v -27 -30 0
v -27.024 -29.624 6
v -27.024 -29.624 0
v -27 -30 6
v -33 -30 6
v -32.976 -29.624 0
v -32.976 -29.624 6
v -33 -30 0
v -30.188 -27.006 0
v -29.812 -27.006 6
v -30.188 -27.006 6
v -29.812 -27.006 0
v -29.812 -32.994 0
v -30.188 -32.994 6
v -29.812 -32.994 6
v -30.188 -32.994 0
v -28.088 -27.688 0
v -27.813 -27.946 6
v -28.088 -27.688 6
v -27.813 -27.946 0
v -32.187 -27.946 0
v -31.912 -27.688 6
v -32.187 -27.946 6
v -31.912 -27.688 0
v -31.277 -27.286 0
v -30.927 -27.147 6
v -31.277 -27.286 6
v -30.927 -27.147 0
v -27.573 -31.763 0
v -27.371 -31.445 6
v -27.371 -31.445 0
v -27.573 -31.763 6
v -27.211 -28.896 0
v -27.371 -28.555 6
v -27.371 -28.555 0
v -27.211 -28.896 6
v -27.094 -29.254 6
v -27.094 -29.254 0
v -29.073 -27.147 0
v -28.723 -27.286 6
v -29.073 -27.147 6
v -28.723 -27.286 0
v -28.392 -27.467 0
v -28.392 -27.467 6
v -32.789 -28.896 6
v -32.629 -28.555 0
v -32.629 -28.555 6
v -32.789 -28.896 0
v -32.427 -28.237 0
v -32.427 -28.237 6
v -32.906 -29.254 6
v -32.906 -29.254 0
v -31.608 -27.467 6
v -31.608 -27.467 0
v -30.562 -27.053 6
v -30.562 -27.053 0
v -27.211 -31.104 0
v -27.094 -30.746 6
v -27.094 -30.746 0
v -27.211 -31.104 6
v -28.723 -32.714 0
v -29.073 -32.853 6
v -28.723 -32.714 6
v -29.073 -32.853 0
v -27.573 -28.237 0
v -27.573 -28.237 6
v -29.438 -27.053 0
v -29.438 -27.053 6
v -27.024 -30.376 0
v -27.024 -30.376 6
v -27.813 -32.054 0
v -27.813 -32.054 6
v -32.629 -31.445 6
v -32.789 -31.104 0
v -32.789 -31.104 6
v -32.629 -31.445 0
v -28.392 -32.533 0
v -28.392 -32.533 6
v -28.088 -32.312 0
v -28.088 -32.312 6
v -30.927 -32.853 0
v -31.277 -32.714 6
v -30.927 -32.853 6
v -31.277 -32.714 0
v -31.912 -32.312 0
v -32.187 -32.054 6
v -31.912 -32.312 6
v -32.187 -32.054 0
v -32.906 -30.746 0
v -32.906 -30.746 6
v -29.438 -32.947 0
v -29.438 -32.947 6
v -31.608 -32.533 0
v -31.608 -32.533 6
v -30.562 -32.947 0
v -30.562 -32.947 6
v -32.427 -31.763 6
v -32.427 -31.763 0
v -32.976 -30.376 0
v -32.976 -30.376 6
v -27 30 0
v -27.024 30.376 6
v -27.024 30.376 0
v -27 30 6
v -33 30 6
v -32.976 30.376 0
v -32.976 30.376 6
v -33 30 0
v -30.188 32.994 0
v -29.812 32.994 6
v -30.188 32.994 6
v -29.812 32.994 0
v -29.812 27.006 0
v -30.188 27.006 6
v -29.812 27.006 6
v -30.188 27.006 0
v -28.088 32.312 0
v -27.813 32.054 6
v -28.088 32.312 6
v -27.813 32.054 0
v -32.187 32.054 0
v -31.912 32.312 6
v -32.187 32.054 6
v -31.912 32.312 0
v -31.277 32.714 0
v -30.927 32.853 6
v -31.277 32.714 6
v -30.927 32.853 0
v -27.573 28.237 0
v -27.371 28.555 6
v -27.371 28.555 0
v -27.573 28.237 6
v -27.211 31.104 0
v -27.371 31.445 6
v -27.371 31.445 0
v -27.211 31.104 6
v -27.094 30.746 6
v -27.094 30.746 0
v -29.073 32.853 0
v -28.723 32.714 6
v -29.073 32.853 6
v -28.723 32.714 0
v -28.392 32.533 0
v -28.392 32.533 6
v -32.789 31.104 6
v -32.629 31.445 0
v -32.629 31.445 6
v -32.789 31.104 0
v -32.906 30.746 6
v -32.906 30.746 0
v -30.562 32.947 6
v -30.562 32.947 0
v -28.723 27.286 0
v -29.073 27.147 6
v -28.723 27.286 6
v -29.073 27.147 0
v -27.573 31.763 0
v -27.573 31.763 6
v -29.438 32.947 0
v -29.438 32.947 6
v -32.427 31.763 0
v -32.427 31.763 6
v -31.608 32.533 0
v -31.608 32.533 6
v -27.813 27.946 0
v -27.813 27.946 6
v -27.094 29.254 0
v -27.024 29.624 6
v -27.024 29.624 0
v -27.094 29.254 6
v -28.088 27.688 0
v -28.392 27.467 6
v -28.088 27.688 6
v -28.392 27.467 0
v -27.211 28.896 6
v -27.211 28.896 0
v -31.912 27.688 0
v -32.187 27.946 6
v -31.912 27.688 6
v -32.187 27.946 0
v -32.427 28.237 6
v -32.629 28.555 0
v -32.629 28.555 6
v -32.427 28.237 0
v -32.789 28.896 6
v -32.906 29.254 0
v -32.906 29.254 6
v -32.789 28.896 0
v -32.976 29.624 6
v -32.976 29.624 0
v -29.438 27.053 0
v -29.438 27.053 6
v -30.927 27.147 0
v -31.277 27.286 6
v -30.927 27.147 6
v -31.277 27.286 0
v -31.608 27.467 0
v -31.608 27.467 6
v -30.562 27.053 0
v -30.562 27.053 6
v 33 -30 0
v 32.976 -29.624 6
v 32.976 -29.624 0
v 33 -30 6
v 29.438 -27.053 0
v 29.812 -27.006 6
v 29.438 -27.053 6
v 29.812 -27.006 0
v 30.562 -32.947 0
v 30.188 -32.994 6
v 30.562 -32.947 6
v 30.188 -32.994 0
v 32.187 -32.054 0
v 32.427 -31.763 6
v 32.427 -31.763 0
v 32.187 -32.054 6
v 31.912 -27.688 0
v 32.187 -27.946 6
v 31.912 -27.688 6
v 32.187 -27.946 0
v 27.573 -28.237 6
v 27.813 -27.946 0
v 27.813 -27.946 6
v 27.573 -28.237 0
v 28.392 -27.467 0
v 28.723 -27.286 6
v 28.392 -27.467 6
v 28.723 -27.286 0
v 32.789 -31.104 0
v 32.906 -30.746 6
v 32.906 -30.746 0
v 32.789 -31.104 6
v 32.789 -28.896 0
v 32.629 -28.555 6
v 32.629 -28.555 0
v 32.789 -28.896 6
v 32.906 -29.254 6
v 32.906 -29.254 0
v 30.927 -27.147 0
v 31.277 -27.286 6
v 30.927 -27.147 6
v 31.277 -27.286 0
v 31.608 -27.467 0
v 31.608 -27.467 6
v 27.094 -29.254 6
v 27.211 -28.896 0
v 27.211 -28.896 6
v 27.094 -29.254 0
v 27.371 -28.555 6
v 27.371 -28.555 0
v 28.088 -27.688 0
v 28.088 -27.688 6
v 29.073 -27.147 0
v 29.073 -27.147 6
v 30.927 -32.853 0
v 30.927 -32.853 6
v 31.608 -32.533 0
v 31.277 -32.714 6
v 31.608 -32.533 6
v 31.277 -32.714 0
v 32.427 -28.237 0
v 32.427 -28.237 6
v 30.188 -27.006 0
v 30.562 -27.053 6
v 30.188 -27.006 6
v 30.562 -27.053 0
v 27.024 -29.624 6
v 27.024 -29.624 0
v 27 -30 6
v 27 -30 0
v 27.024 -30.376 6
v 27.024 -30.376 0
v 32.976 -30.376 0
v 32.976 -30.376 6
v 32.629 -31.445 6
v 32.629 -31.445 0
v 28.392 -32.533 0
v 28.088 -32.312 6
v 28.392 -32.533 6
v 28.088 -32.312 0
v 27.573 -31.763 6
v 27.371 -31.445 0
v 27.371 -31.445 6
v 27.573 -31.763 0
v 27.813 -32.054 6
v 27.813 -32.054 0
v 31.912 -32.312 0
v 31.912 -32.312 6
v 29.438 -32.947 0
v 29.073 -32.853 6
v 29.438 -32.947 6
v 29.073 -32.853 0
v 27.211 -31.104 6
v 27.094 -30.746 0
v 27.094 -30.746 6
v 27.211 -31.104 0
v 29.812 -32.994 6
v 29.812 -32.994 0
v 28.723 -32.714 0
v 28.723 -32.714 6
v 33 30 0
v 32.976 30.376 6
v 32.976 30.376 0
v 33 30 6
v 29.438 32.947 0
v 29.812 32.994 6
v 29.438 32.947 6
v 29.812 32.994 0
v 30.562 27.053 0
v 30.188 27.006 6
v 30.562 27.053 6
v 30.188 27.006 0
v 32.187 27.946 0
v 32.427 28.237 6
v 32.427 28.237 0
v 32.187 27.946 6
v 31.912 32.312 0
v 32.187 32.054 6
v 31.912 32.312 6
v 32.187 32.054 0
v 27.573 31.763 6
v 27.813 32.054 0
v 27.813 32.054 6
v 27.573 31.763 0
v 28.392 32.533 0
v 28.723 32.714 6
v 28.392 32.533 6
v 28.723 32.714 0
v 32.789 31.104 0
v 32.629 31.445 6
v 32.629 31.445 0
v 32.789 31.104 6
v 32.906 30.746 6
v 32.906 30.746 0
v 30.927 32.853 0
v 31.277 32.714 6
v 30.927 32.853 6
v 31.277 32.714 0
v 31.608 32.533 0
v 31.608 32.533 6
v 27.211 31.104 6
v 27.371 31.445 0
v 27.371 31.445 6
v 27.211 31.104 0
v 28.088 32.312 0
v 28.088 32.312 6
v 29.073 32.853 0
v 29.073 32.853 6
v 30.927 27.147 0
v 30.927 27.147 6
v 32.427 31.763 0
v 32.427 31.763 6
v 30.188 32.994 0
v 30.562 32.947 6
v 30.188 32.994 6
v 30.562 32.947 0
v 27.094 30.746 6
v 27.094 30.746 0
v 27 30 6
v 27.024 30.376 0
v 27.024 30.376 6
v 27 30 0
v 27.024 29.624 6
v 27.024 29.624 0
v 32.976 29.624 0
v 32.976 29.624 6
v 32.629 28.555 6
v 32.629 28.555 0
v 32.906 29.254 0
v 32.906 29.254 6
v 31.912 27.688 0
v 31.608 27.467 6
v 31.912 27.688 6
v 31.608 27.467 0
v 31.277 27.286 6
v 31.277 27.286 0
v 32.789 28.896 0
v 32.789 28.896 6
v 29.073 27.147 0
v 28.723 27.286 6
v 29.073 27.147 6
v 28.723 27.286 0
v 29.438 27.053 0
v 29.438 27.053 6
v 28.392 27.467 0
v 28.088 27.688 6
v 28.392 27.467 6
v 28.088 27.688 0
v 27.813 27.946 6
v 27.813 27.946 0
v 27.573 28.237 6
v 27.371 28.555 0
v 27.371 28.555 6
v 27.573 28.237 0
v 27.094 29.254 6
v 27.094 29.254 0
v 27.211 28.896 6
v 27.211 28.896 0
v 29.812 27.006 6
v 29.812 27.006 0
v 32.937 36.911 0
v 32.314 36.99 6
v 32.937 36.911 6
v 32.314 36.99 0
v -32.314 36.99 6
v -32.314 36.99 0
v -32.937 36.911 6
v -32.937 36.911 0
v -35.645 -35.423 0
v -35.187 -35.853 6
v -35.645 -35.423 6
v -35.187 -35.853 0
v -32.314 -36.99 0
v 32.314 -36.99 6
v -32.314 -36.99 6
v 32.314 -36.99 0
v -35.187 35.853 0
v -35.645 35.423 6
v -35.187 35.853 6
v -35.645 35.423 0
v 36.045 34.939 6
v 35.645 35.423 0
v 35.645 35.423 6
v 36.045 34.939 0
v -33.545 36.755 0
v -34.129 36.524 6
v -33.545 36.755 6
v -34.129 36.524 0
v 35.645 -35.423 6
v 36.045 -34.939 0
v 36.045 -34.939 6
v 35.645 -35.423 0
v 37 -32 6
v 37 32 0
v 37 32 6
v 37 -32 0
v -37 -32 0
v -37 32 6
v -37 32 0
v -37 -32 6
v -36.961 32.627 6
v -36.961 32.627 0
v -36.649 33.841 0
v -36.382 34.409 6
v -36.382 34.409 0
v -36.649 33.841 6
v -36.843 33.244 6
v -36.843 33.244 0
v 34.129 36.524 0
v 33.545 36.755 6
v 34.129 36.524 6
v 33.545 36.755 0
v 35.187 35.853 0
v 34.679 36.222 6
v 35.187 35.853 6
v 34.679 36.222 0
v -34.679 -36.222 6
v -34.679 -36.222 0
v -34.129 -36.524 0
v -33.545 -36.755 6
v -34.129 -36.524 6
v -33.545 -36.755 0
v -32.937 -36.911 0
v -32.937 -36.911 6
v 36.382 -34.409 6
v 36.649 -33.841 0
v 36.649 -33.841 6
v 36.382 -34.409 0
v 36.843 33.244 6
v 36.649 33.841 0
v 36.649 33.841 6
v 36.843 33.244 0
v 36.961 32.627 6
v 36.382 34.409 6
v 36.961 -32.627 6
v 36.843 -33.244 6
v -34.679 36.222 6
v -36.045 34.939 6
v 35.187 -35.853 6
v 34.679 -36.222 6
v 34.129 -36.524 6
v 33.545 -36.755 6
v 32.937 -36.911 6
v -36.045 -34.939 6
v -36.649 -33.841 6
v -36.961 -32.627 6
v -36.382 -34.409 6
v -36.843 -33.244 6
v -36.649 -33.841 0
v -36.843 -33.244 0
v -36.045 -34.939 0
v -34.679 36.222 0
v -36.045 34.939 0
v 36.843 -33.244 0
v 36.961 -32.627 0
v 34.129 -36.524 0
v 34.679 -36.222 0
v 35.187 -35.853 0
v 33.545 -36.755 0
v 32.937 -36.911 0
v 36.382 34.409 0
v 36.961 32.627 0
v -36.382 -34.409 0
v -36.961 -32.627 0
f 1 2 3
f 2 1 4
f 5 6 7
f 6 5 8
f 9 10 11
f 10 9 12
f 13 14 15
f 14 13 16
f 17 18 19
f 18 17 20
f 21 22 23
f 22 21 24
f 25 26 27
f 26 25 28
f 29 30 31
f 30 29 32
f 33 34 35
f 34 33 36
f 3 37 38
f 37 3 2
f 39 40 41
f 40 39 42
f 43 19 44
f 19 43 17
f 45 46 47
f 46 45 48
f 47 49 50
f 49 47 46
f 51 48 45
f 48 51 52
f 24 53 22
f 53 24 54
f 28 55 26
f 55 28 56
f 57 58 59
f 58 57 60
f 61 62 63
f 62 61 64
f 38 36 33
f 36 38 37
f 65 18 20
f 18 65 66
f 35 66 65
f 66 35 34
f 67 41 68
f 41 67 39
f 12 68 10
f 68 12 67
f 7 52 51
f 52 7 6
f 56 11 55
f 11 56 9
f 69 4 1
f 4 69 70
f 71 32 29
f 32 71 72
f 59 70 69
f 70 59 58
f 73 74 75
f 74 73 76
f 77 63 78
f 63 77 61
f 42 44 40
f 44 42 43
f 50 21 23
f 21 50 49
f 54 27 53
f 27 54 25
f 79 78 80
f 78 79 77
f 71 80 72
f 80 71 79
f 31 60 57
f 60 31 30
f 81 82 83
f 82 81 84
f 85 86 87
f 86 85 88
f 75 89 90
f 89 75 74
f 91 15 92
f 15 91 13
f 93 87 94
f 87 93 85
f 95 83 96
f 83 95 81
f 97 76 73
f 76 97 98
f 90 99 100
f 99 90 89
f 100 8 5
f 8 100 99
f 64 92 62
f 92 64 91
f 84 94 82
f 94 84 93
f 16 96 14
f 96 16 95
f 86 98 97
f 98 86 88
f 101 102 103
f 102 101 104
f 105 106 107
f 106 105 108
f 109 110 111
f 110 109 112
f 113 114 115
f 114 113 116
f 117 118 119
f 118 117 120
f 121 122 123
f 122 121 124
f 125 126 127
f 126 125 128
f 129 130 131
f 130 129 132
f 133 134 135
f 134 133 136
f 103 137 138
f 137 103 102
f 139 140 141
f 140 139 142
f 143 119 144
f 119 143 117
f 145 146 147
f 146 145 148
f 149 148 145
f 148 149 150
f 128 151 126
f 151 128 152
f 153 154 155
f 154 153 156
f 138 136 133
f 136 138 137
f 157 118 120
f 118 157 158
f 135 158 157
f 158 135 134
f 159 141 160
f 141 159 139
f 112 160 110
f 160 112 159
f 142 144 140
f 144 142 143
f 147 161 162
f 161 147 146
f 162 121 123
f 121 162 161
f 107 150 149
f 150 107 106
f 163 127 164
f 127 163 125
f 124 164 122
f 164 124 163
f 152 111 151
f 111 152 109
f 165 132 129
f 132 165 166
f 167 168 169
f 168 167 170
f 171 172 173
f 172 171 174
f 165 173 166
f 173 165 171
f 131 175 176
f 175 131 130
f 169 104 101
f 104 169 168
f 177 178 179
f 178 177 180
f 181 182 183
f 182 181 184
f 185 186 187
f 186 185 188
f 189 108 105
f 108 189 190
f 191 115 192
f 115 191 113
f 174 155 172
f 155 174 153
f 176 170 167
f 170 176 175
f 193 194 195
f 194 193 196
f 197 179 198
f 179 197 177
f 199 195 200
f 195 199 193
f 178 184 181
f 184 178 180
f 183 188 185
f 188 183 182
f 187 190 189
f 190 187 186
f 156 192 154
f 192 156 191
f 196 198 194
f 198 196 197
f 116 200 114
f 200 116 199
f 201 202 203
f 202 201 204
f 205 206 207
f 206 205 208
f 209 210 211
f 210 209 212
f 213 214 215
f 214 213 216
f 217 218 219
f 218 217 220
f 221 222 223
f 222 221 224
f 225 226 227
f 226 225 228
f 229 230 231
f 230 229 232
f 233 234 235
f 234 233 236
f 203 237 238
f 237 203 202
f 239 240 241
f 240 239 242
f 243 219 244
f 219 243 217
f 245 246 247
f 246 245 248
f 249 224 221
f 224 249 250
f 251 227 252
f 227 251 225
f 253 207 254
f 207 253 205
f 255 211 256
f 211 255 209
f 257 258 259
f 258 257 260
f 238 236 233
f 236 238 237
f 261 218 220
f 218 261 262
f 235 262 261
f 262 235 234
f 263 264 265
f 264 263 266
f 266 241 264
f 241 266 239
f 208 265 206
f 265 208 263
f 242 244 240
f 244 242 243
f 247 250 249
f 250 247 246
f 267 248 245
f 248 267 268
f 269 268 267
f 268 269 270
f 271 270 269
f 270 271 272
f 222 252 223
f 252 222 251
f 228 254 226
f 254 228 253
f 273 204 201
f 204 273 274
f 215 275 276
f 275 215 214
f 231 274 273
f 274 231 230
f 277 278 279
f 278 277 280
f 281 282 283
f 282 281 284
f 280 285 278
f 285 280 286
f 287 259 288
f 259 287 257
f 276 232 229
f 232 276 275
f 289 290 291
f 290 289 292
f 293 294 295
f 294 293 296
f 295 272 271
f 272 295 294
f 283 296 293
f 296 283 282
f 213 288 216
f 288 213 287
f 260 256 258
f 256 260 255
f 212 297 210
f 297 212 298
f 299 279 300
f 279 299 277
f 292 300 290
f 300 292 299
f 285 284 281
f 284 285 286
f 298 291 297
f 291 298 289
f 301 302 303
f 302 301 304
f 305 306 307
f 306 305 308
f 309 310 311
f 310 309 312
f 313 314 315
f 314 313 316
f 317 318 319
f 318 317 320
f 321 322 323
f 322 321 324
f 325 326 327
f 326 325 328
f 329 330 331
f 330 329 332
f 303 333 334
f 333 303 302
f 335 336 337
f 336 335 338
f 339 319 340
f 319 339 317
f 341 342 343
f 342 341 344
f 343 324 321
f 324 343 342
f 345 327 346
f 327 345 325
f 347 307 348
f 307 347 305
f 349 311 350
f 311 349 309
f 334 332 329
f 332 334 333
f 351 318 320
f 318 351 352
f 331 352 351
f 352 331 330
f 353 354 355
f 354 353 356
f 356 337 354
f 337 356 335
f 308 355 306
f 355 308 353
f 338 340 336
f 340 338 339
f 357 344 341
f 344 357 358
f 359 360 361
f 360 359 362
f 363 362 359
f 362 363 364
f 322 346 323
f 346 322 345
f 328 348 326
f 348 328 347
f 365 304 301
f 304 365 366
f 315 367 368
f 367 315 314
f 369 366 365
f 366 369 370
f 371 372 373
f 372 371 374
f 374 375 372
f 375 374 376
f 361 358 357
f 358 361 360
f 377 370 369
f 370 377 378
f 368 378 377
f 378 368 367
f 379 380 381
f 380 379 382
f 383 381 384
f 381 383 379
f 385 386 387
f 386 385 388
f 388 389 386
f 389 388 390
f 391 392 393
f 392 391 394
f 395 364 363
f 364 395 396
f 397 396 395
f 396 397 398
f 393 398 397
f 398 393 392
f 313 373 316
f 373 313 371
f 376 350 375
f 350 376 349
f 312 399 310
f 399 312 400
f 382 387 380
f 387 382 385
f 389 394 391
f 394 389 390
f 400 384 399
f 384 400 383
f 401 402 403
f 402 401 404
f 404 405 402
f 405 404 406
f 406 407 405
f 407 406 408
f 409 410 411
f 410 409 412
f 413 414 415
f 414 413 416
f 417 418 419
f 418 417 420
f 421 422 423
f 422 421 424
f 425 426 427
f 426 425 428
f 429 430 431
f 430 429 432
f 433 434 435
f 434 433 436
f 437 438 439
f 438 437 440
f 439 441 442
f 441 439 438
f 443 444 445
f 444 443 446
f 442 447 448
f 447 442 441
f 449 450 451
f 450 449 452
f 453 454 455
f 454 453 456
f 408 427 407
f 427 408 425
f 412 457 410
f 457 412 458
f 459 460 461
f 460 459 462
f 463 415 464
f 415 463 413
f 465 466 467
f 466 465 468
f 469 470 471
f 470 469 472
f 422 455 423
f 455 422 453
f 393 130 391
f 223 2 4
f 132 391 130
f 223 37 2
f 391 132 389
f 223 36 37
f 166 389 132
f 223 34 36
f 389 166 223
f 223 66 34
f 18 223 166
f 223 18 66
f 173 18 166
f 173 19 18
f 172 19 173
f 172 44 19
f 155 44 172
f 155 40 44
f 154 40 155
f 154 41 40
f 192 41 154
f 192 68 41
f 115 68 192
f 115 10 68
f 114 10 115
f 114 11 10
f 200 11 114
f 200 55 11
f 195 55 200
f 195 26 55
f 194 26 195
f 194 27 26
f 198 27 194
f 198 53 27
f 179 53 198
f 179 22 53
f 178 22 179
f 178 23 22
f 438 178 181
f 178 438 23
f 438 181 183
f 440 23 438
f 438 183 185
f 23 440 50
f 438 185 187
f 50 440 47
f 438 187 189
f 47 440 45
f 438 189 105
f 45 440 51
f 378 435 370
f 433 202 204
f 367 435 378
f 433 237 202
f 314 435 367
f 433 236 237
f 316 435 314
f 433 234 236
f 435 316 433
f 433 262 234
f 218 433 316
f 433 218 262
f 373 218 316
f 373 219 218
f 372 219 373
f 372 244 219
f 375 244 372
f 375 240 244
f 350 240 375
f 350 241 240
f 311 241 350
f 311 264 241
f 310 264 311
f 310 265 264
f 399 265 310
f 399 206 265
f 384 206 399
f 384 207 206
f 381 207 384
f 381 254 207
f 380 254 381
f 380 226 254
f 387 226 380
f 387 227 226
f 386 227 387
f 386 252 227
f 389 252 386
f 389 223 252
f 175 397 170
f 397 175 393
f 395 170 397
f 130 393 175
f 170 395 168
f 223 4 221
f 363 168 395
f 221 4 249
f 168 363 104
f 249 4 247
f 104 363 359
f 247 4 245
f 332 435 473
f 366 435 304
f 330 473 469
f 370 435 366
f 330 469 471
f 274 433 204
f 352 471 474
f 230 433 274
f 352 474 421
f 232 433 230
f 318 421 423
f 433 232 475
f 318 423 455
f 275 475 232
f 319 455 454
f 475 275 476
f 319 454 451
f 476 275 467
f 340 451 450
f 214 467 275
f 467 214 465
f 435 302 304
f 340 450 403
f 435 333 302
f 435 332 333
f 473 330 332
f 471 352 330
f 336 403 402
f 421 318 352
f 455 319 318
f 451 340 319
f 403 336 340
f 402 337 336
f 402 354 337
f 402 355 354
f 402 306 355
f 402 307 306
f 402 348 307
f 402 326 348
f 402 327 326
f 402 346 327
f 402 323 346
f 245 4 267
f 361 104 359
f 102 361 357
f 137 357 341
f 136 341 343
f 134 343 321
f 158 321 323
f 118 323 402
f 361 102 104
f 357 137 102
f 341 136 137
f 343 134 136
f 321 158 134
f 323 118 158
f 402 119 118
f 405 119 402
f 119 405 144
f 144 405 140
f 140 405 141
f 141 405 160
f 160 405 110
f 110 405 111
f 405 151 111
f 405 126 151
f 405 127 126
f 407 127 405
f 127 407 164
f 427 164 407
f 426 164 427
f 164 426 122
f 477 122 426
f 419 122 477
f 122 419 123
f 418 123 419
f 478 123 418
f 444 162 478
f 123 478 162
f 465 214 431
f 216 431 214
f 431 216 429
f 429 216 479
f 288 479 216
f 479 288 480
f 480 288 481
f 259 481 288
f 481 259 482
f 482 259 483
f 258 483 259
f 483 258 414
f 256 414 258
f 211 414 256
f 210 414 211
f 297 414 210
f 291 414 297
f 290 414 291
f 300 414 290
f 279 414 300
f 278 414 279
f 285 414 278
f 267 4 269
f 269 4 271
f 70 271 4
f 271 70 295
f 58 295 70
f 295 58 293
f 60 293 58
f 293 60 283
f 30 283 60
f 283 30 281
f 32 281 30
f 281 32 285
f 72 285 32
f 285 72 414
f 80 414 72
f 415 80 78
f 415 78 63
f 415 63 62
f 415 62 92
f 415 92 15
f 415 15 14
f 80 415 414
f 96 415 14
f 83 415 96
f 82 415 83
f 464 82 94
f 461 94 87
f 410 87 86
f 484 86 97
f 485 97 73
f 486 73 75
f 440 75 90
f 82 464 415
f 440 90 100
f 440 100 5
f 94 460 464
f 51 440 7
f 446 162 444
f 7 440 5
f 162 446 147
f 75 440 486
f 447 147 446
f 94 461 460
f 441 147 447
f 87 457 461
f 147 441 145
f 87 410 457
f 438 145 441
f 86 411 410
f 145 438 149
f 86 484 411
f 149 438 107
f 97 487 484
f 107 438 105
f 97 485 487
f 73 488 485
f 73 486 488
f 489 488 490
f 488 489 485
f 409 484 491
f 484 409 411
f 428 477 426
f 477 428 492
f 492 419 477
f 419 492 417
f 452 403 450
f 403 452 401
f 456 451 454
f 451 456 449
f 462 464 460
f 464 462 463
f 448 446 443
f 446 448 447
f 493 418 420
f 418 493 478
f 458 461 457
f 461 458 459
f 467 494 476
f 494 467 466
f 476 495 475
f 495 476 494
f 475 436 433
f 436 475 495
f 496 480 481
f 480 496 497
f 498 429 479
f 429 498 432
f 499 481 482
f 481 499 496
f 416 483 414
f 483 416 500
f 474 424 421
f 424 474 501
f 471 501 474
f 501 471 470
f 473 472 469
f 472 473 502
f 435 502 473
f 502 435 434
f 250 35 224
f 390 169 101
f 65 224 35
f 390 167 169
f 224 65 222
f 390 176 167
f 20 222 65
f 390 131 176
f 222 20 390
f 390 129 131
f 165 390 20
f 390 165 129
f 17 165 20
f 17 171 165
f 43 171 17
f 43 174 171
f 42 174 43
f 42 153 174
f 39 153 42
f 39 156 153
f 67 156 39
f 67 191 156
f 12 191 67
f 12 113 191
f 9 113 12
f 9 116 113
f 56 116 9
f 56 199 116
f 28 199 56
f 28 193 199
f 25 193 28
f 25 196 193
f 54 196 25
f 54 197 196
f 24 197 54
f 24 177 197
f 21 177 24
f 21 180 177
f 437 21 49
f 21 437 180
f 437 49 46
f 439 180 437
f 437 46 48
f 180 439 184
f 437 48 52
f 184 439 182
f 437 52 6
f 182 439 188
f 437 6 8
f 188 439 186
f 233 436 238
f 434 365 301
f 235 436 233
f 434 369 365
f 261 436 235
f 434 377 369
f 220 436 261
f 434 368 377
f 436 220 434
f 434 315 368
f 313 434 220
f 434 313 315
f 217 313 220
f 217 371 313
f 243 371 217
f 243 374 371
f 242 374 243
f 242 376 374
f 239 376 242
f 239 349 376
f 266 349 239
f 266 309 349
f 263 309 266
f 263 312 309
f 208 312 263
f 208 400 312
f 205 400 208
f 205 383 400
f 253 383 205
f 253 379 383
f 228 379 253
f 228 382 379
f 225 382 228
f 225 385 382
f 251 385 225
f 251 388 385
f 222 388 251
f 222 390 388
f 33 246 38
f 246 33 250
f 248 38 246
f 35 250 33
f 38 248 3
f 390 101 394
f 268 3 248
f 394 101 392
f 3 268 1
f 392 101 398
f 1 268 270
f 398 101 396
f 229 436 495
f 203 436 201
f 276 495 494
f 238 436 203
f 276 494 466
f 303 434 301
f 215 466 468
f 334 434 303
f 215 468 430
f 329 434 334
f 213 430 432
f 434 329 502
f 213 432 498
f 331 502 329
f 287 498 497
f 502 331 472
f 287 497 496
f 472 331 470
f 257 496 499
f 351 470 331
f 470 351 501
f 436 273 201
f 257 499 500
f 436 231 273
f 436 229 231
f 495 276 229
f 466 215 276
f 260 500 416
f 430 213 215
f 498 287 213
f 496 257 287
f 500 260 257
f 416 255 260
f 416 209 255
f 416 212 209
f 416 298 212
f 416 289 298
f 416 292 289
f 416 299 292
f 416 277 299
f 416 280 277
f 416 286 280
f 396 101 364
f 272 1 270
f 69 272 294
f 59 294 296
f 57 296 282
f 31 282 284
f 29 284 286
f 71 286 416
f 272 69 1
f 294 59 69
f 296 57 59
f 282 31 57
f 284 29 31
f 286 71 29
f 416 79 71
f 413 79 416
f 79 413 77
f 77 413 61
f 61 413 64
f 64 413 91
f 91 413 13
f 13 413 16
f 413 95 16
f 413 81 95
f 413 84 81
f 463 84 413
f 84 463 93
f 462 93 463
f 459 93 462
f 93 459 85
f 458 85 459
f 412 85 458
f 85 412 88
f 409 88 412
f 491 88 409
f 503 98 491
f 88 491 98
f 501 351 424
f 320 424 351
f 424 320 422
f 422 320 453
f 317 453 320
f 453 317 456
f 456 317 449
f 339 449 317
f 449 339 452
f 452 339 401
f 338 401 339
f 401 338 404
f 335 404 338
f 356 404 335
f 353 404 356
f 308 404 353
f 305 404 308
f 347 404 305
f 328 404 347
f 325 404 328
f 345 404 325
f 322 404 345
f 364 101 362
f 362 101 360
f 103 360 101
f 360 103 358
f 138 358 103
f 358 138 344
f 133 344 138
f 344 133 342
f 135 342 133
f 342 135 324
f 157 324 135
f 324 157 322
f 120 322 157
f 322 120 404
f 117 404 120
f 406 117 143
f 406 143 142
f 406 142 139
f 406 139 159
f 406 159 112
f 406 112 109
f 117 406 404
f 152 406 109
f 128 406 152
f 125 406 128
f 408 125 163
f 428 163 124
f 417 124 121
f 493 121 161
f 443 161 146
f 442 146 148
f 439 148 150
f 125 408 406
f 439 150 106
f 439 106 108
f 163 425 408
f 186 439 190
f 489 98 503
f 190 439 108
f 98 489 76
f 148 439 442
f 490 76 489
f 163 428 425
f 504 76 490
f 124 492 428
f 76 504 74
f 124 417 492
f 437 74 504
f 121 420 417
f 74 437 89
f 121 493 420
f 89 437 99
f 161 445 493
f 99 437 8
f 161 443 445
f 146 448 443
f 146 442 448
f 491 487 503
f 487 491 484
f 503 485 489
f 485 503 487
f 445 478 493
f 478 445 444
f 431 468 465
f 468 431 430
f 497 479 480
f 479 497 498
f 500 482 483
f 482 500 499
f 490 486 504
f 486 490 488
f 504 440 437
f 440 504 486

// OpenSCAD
$fn = 50;


difference() {
	union() {
		hull() {
			translate(v = [-32.0000000000, 32.0000000000, 0]) {
				cylinder(h = 6, r = 5);
			}
			translate(v = [32.0000000000, 32.0000000000, 0]) {
				cylinder(h = 6, r = 5);
			}
			translate(v = [-32.0000000000, -32.0000000000, 0]) {
				cylinder(h = 6, r = 5);
			}
			translate(v = [32.0000000000, -32.0000000000, 0]) {
				cylinder(h = 6, r = 5);
			}
		}
	}
	union() {
		translate(v = [-30.0000000000, -30.0000000000, -100.0000000000]) {
			cylinder(h = 200, r = 3.0000000000);
		}
		translate(v = [-30.0000000000, 30.0000000000, -100.0000000000]) {
			cylinder(h = 200, r = 3.0000000000);
		}
		translate(v = [30.0000000000, -30.0000000000, -100.0000000000]) {
			cylinder(h = 200, r = 3.0000000000);
		}
		translate(v = [30.0000000000, 30.0000000000, -100.0000000000]) {
			cylinder(h = 200, r = 3.0000000000);
		}
	}
}
